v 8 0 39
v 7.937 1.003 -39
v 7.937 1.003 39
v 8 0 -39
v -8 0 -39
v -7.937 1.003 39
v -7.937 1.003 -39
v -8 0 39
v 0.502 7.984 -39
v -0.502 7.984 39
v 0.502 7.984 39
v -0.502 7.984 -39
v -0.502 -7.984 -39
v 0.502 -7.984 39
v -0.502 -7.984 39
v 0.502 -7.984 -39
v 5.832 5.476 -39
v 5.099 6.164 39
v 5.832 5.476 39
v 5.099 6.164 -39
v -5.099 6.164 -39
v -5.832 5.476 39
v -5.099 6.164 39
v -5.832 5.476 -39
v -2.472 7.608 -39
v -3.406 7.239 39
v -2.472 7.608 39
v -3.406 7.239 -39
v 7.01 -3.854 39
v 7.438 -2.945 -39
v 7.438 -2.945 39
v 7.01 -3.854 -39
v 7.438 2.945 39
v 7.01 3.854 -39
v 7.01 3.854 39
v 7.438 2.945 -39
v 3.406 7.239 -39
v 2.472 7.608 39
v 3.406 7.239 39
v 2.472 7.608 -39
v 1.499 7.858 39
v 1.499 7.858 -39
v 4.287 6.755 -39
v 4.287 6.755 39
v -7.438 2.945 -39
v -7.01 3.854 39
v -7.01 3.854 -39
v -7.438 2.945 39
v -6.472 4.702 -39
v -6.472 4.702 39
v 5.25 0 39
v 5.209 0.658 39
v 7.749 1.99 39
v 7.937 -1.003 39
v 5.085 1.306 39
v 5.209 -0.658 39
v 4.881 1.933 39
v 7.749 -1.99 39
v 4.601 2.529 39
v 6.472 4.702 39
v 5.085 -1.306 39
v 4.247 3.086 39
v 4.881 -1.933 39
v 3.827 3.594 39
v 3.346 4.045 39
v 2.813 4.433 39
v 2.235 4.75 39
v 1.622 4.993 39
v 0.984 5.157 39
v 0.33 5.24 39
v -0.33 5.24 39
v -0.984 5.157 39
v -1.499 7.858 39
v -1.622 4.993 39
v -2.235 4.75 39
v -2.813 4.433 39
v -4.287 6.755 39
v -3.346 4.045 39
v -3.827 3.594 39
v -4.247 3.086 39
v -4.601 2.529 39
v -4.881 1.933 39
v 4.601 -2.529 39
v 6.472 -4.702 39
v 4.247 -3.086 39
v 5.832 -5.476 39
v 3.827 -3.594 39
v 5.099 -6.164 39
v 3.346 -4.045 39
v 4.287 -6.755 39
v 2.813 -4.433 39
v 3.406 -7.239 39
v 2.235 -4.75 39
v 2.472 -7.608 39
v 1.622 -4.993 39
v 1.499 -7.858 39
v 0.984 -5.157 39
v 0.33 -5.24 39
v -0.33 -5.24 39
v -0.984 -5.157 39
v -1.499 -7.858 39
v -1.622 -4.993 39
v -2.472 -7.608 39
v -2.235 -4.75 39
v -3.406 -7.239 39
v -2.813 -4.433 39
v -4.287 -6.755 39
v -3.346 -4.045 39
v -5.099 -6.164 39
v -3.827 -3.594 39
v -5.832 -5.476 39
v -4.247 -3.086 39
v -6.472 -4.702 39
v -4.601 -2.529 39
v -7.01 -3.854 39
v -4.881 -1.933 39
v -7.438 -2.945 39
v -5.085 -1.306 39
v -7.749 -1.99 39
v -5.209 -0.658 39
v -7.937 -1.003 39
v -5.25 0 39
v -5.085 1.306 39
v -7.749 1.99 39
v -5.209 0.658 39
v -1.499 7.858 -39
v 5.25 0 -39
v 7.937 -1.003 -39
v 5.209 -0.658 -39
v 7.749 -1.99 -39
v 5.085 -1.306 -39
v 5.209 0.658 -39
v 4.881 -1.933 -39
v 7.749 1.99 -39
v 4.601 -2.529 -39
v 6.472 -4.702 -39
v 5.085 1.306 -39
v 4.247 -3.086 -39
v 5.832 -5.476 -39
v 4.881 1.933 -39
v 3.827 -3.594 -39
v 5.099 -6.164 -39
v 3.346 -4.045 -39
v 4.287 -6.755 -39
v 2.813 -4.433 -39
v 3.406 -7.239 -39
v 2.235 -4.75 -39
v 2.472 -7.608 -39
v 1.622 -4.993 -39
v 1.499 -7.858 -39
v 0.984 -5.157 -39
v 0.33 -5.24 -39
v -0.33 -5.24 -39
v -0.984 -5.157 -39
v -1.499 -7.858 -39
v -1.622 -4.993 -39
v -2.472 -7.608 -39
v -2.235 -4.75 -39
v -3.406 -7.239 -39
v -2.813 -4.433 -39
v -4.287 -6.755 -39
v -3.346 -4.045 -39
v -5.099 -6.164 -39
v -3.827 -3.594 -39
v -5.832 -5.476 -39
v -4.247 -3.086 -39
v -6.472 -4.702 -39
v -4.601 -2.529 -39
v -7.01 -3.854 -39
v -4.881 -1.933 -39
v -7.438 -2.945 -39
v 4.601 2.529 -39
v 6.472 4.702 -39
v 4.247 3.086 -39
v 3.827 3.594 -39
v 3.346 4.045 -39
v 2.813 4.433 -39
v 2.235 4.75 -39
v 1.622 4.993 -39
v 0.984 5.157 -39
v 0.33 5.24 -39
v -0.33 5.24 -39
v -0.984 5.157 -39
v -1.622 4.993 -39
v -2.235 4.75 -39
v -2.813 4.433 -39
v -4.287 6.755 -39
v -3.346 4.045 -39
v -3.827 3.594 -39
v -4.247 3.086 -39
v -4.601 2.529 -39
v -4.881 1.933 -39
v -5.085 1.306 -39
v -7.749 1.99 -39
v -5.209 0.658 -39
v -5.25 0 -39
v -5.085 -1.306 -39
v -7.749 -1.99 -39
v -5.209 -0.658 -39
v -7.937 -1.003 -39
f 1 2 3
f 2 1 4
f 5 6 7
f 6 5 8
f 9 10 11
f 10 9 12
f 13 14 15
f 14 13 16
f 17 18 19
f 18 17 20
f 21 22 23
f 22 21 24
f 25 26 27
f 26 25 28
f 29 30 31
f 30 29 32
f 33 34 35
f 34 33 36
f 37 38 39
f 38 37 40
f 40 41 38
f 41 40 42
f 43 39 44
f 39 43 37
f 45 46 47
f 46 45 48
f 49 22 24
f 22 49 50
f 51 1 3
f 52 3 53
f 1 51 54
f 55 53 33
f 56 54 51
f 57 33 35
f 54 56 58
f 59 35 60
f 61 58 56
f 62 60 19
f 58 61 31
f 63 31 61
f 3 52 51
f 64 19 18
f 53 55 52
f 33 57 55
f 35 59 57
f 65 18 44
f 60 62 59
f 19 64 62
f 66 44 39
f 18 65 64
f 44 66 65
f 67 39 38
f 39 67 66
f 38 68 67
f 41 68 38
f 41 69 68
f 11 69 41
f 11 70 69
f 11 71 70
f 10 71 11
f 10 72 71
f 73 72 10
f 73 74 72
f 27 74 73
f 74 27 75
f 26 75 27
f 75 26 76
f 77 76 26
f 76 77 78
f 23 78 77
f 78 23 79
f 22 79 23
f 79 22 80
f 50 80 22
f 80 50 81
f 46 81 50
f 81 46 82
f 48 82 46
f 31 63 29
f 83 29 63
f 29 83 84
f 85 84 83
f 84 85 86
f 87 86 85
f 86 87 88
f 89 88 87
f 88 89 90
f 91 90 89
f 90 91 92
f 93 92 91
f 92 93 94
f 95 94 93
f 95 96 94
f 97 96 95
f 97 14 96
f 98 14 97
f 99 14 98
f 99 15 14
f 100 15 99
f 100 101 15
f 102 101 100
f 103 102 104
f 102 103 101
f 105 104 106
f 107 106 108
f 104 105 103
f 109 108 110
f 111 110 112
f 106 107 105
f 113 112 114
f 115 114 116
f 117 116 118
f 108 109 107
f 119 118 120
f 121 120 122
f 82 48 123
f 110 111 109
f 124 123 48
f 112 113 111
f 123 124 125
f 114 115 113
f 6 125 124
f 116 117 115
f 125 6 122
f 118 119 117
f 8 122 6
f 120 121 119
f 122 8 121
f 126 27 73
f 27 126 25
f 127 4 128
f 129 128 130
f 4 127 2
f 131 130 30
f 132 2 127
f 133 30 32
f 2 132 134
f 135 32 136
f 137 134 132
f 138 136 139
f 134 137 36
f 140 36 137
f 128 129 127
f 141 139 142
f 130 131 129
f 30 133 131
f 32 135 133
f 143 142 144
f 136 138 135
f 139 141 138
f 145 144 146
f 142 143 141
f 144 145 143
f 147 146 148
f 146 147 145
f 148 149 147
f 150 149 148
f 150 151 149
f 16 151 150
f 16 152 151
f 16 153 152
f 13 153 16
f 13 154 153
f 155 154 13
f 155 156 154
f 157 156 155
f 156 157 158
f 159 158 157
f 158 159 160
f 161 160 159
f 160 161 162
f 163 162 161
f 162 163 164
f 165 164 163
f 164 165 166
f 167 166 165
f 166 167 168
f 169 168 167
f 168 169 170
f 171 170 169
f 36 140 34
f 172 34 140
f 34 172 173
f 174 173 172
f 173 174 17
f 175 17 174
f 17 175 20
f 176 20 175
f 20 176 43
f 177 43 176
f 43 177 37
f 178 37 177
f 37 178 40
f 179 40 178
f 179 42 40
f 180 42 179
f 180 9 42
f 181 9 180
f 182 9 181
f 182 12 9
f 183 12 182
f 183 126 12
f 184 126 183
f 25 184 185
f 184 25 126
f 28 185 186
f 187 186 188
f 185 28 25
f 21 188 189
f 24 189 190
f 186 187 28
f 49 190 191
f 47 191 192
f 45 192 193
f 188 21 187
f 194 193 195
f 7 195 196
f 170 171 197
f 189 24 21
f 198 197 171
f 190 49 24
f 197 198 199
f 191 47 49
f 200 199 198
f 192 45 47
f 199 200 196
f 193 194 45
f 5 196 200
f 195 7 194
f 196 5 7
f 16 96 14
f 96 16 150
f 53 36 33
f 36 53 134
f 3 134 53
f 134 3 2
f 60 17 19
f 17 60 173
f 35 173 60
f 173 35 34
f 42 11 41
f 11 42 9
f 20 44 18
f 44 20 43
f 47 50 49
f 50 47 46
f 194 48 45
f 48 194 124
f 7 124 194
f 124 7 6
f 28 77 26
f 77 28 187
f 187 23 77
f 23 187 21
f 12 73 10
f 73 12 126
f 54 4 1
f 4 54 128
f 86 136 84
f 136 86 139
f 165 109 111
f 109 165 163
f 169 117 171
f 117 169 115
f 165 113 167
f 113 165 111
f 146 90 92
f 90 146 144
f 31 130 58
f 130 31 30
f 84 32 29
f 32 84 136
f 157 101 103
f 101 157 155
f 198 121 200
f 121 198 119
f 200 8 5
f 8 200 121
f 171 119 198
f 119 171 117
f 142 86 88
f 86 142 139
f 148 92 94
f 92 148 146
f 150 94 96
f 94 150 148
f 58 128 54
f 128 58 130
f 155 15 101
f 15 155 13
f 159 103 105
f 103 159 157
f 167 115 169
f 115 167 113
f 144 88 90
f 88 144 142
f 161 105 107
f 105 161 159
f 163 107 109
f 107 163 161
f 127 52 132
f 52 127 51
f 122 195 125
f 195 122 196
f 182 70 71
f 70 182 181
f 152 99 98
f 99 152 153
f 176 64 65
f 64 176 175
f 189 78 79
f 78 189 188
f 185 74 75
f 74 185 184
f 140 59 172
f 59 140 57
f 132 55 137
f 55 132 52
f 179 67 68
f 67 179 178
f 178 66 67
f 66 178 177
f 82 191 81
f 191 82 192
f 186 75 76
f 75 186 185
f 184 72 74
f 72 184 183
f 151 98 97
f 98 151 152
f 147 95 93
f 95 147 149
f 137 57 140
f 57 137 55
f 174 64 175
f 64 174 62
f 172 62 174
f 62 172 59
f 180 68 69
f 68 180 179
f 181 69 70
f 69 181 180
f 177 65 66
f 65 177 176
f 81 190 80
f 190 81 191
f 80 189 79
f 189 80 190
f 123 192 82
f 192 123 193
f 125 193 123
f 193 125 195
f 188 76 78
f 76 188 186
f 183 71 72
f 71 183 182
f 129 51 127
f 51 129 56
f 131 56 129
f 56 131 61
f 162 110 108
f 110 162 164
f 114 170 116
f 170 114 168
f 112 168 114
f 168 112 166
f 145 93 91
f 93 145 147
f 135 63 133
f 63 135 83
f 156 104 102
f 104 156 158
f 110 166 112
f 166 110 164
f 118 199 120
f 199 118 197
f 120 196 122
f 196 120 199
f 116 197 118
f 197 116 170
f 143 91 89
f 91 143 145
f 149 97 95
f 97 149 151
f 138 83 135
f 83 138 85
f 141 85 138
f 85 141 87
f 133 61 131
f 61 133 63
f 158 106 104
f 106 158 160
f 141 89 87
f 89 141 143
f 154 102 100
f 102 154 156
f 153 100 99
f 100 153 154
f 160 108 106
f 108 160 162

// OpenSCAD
$fn = 50;


difference() {
	union() {
		translate(v = [0, 0, -39.0000000000]) {
			cylinder(h = 78, r = 8.0000000000);
		}
	}
	union() {
		translate(v = [0, 0, -100.0000000000]) {
			cylinder(h = 200, r = 5.2500000000);
		}
	}
}
